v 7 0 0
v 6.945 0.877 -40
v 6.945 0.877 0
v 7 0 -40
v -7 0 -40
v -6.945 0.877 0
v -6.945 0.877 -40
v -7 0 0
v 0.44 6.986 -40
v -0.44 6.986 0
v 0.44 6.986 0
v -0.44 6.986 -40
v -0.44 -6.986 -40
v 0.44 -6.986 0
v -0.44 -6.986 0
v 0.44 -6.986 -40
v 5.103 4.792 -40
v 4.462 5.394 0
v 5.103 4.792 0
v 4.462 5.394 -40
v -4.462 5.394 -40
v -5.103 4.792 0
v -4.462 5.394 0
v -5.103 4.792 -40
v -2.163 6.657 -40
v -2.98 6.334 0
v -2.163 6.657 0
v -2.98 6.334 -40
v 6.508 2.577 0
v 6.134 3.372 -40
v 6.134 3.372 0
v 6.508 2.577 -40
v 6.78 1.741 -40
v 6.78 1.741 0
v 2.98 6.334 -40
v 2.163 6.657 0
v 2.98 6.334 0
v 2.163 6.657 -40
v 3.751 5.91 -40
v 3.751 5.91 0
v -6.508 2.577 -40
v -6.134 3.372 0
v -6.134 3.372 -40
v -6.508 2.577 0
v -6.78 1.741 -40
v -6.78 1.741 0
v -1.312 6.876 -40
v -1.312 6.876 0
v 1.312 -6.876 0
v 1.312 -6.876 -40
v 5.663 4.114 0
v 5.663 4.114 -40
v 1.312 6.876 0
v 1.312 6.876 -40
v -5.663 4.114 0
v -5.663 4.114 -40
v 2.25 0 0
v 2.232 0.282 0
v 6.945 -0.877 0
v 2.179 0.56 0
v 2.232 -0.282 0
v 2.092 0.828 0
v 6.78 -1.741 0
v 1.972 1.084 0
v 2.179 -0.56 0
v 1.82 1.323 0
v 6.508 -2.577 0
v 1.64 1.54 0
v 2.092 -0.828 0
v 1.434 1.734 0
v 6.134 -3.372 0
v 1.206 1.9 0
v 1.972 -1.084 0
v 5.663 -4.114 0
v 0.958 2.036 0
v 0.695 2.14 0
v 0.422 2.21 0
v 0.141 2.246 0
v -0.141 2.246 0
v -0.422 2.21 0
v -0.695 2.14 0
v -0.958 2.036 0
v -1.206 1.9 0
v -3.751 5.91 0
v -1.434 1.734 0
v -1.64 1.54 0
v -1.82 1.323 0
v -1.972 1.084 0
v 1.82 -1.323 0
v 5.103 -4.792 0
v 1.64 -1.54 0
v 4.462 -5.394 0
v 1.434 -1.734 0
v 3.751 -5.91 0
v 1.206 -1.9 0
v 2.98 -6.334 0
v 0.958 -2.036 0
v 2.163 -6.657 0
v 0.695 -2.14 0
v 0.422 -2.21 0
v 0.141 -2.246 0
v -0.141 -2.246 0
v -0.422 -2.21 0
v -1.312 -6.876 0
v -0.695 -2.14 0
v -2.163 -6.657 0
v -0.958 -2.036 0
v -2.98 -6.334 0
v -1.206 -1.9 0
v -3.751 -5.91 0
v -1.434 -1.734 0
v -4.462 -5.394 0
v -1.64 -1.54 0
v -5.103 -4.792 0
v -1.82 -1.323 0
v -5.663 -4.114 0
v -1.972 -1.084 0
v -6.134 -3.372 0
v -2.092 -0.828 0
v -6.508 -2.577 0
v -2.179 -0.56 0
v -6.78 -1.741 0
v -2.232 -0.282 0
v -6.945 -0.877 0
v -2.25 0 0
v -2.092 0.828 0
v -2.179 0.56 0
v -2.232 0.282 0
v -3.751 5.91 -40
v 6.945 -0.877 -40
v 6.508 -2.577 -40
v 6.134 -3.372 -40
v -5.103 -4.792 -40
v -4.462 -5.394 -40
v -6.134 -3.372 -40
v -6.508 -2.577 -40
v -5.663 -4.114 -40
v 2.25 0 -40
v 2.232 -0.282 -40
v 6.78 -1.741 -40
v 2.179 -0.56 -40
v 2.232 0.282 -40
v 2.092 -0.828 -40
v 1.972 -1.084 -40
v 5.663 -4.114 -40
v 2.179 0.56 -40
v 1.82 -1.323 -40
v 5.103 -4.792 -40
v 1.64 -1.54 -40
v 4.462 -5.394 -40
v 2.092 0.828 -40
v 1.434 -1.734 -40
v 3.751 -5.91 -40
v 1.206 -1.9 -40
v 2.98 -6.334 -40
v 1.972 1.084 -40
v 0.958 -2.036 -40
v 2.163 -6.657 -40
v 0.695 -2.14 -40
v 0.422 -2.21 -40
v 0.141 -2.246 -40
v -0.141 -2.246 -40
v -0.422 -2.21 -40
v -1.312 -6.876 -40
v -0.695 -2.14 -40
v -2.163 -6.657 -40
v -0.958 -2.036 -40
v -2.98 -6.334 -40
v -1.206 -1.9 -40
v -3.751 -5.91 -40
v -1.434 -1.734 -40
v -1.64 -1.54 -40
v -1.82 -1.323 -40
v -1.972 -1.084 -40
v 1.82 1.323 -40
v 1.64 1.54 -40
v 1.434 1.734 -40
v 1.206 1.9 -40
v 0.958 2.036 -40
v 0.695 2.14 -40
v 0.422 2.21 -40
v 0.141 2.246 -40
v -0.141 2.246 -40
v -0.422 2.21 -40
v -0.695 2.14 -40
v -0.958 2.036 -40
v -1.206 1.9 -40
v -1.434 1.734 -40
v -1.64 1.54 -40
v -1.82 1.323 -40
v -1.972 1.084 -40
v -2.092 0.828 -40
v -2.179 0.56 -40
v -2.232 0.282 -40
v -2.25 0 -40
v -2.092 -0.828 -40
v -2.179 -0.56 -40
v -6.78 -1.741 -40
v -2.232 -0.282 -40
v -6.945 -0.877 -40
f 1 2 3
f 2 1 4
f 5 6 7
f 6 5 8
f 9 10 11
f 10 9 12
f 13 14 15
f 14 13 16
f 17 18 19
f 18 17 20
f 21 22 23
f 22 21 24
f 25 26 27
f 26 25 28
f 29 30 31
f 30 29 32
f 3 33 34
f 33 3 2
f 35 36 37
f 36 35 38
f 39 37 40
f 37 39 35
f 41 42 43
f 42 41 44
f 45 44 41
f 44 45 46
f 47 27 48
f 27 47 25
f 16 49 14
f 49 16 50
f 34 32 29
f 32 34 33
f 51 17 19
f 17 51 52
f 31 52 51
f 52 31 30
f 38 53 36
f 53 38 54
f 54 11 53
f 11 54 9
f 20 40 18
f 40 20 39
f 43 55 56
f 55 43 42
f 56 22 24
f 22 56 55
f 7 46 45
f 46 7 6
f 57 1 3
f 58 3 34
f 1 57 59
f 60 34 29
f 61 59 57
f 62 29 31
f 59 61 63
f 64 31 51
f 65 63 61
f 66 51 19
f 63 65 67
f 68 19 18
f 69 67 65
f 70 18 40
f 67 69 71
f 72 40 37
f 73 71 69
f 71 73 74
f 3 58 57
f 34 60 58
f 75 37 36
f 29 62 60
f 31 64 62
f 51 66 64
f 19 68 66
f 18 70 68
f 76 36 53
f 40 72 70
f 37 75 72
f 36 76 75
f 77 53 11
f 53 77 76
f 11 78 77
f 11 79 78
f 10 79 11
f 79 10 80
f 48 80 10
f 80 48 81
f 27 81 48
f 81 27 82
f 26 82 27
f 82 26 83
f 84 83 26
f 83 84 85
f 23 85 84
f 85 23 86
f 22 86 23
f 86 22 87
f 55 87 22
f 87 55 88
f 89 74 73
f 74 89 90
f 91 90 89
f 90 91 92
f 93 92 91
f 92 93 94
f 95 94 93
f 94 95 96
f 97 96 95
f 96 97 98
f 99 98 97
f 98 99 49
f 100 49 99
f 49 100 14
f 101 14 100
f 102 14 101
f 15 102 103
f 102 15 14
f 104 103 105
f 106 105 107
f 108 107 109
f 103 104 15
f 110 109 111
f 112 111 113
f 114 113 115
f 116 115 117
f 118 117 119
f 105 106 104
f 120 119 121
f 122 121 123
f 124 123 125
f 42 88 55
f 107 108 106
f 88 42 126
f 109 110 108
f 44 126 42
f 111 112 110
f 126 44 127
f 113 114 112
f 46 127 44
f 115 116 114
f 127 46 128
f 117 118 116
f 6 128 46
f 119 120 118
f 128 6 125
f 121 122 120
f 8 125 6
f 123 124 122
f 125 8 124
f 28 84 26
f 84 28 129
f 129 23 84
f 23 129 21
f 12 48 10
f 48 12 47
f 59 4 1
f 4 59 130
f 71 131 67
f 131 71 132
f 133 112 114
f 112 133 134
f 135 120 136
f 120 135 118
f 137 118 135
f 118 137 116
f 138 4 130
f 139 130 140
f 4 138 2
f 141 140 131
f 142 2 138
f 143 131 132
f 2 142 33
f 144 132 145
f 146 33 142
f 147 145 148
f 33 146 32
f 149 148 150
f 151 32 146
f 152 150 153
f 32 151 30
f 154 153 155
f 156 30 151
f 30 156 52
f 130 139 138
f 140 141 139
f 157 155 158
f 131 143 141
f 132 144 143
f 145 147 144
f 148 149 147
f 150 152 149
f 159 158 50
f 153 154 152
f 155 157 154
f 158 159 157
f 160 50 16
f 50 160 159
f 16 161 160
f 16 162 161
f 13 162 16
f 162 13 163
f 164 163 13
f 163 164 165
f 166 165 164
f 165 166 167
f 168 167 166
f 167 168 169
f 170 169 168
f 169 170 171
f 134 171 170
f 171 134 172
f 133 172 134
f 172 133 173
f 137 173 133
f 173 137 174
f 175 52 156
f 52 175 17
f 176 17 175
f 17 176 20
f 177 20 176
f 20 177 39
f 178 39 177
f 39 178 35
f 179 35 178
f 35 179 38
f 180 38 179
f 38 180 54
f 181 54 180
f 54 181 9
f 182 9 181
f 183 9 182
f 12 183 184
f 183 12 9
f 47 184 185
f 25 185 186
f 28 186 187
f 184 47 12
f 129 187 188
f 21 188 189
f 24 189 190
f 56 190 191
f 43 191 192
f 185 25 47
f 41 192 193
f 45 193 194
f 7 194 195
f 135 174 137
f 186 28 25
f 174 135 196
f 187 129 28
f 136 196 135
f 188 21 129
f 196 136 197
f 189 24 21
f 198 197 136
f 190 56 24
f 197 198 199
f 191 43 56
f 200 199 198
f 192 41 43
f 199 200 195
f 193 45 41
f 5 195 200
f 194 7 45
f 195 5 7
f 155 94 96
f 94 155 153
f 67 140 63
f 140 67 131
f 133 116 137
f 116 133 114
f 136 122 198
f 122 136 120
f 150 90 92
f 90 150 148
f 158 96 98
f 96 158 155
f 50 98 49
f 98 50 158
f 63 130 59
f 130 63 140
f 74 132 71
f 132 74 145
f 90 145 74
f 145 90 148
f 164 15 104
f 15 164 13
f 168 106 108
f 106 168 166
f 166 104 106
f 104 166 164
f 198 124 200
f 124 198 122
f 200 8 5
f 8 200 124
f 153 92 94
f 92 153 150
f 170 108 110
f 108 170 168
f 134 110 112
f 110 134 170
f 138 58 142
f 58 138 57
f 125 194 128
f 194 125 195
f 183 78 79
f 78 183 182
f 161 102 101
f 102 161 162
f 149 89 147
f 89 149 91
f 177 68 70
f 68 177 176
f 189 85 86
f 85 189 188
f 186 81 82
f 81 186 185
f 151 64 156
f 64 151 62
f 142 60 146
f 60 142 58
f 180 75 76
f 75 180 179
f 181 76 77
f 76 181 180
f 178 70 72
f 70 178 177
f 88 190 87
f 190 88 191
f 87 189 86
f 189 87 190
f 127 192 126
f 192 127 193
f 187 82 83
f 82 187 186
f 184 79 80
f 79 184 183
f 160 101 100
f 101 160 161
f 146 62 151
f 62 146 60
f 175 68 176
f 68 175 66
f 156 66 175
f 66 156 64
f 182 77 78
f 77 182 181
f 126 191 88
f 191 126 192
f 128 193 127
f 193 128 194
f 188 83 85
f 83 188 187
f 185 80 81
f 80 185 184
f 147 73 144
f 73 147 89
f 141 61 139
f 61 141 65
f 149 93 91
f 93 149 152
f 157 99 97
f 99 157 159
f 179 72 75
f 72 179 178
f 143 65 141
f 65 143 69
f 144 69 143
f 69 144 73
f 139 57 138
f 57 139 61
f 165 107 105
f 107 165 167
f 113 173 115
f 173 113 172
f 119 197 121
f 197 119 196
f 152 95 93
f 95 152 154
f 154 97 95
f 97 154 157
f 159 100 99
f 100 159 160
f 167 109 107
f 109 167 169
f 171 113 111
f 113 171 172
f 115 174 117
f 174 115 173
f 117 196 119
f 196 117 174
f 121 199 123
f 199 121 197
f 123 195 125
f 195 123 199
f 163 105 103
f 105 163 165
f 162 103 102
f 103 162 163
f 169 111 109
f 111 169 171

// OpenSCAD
$fn = 50;


difference() {
	union() {
		translate(v = [0, 0, -40.0000000000]) {
			cylinder(h = 40, r = 7.0000000000);
		}
		cylinder(h = 0, r = 10.0000000000);
	}
	union() {
		#translate(v = [0, 0, -40]) {
			cylinder(h = 40, r = 2.2500000000);
		}
	}
}
